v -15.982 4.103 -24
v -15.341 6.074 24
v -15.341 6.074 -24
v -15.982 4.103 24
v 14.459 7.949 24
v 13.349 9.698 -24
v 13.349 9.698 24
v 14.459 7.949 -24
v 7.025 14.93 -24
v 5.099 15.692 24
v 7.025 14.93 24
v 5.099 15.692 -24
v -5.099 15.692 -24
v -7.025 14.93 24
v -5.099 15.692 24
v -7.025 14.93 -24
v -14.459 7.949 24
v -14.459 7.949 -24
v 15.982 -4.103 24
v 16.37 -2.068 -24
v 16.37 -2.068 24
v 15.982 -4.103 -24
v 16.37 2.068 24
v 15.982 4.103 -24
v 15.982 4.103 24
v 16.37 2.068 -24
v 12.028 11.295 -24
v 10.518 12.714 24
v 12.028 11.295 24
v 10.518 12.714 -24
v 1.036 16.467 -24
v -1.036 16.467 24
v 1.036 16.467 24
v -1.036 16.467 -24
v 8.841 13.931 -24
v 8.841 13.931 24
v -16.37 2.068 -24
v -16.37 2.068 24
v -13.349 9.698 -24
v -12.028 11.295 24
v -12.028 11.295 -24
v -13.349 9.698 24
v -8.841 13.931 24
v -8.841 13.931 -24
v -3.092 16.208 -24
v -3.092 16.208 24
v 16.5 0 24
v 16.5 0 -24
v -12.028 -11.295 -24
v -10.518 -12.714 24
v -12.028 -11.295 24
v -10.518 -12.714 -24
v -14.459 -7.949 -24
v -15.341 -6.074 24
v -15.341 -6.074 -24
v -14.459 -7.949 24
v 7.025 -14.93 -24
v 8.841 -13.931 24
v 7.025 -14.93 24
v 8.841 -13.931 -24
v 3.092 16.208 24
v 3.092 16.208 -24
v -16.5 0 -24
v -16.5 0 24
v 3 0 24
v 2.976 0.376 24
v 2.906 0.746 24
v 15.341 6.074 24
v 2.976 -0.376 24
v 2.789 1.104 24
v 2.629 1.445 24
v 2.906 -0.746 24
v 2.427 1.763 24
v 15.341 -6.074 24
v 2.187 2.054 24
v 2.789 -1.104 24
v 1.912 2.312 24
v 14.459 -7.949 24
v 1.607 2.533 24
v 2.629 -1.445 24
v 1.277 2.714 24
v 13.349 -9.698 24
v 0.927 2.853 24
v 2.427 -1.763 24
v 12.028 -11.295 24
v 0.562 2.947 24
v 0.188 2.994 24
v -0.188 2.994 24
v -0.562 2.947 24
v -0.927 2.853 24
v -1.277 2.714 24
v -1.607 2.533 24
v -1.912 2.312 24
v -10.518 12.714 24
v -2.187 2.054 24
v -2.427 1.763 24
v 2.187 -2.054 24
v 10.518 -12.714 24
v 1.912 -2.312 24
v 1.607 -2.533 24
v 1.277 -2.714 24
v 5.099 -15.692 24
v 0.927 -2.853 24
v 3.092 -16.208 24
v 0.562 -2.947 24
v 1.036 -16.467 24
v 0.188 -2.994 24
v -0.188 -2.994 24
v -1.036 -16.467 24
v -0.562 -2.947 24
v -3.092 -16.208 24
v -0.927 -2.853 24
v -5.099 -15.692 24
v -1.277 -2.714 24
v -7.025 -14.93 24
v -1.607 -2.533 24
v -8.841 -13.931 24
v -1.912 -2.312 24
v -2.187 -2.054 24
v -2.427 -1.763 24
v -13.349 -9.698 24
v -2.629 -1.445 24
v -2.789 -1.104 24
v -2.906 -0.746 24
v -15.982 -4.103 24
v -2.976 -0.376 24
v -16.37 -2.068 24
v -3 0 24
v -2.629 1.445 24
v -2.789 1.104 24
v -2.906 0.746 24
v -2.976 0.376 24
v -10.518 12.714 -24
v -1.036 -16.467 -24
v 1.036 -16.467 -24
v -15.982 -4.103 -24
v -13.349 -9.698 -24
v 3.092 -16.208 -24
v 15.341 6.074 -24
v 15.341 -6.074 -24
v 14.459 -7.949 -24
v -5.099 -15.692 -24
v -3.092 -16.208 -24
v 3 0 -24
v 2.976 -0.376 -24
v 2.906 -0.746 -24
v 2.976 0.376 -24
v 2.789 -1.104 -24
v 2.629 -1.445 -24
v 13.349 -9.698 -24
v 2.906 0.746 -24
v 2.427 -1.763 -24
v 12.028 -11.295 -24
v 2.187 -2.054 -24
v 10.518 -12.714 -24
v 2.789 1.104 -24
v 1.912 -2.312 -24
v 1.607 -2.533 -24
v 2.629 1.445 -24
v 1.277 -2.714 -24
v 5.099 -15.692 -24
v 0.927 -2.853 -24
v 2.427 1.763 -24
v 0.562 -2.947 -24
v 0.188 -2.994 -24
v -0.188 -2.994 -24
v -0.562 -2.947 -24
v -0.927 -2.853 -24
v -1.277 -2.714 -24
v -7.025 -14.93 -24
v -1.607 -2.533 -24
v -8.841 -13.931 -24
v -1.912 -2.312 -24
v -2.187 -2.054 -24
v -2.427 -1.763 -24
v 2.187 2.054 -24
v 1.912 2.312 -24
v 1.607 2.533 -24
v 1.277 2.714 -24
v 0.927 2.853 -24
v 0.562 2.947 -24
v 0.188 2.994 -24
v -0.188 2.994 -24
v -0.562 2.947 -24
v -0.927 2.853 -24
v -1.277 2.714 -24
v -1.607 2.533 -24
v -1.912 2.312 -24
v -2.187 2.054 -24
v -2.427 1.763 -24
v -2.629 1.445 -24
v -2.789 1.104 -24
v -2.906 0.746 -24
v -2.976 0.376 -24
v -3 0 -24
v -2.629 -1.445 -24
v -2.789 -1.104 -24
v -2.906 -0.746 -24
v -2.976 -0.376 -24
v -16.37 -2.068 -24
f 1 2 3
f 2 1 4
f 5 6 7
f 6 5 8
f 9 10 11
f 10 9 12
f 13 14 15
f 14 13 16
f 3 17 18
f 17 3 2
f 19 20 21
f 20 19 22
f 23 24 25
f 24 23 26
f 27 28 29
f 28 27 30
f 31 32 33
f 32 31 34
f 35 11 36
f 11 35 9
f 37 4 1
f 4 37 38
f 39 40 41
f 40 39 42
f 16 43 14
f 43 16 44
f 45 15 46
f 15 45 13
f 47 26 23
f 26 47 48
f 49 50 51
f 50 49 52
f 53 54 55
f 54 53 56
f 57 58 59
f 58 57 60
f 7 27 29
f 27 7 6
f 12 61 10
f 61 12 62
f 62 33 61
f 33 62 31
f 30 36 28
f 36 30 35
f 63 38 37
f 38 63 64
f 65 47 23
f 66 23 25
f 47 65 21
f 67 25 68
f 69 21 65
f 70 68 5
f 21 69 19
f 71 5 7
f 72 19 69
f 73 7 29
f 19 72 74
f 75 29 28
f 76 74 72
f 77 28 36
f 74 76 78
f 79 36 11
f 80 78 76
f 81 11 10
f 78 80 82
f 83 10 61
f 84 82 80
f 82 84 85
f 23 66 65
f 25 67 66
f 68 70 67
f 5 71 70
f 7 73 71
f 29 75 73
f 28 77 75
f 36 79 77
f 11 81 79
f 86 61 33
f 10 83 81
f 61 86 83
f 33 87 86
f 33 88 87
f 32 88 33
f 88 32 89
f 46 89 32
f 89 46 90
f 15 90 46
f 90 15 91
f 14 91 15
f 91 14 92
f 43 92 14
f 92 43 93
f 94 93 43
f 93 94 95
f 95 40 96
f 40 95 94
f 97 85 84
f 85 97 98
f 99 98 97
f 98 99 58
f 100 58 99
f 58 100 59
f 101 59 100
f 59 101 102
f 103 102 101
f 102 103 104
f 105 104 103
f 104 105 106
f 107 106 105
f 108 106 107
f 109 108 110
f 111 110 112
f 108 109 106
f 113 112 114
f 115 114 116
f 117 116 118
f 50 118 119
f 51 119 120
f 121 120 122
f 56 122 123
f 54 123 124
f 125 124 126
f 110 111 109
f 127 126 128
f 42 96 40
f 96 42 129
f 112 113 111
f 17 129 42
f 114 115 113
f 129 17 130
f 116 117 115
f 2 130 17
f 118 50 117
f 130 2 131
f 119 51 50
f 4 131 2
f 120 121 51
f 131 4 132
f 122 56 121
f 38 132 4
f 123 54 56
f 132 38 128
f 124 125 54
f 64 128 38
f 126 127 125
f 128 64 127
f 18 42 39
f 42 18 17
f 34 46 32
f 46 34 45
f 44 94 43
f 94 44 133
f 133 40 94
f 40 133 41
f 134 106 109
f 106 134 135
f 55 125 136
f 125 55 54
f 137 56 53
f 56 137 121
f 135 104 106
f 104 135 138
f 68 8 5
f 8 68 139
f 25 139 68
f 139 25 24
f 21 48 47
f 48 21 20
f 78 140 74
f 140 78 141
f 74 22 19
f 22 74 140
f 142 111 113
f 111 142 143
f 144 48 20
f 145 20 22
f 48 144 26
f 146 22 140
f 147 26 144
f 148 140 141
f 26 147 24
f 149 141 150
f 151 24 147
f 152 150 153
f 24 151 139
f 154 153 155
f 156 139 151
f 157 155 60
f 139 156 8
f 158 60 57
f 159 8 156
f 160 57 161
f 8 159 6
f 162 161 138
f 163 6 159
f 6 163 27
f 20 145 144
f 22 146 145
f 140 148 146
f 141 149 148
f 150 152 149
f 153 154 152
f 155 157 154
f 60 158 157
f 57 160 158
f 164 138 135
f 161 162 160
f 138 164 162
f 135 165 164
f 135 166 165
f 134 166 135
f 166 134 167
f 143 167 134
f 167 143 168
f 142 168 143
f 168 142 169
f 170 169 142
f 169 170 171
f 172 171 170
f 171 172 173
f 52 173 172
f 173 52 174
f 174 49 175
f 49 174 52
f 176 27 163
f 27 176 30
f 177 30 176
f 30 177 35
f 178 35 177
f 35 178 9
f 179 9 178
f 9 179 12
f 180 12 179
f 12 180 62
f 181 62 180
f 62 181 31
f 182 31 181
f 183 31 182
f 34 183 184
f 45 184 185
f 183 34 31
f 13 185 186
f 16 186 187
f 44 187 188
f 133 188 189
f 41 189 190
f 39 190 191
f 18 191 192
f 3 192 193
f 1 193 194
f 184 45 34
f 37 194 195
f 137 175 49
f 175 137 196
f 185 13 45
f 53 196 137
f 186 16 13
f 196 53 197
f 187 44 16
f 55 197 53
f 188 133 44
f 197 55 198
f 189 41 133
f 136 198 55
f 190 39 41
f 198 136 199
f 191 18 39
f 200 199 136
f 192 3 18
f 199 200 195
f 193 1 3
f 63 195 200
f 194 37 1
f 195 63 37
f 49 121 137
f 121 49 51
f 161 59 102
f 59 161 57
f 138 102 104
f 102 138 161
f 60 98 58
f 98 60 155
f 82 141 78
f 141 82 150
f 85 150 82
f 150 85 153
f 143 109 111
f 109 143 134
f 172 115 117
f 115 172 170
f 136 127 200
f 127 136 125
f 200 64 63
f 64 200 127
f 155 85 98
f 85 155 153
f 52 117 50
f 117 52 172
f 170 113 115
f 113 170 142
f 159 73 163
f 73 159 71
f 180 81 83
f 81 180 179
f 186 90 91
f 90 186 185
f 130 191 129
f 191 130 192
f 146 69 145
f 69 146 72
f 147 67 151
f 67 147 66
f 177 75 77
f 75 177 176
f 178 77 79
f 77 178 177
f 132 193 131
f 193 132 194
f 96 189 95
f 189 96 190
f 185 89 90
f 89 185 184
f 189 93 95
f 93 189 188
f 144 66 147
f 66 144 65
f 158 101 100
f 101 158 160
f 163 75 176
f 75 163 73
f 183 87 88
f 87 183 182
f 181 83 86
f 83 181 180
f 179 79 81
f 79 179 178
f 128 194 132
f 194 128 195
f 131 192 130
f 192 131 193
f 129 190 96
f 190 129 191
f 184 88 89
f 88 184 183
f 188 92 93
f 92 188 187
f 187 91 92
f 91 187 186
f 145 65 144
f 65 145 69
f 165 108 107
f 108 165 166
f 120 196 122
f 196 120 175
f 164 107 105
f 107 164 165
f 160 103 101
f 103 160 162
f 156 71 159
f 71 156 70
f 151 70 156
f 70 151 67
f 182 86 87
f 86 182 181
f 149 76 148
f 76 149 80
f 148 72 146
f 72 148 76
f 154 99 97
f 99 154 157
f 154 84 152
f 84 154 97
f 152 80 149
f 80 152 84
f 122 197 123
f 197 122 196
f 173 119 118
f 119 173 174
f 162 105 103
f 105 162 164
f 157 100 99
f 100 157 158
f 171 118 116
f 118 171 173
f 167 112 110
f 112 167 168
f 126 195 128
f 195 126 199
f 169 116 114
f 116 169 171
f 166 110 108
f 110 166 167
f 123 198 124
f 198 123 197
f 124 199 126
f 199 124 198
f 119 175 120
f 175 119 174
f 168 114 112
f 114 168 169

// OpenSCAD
$fn = 50;


difference() {
	union() {
		translate(v = [0, 0, -24.0000000000]) {
			cylinder(h = 48, r = 16.5000000000);
		}
	}
	union() {
		translate(v = [0, 0, -100.0000000000]) {
			cylinder(h = 200, r = 3);
		}
	}
}
